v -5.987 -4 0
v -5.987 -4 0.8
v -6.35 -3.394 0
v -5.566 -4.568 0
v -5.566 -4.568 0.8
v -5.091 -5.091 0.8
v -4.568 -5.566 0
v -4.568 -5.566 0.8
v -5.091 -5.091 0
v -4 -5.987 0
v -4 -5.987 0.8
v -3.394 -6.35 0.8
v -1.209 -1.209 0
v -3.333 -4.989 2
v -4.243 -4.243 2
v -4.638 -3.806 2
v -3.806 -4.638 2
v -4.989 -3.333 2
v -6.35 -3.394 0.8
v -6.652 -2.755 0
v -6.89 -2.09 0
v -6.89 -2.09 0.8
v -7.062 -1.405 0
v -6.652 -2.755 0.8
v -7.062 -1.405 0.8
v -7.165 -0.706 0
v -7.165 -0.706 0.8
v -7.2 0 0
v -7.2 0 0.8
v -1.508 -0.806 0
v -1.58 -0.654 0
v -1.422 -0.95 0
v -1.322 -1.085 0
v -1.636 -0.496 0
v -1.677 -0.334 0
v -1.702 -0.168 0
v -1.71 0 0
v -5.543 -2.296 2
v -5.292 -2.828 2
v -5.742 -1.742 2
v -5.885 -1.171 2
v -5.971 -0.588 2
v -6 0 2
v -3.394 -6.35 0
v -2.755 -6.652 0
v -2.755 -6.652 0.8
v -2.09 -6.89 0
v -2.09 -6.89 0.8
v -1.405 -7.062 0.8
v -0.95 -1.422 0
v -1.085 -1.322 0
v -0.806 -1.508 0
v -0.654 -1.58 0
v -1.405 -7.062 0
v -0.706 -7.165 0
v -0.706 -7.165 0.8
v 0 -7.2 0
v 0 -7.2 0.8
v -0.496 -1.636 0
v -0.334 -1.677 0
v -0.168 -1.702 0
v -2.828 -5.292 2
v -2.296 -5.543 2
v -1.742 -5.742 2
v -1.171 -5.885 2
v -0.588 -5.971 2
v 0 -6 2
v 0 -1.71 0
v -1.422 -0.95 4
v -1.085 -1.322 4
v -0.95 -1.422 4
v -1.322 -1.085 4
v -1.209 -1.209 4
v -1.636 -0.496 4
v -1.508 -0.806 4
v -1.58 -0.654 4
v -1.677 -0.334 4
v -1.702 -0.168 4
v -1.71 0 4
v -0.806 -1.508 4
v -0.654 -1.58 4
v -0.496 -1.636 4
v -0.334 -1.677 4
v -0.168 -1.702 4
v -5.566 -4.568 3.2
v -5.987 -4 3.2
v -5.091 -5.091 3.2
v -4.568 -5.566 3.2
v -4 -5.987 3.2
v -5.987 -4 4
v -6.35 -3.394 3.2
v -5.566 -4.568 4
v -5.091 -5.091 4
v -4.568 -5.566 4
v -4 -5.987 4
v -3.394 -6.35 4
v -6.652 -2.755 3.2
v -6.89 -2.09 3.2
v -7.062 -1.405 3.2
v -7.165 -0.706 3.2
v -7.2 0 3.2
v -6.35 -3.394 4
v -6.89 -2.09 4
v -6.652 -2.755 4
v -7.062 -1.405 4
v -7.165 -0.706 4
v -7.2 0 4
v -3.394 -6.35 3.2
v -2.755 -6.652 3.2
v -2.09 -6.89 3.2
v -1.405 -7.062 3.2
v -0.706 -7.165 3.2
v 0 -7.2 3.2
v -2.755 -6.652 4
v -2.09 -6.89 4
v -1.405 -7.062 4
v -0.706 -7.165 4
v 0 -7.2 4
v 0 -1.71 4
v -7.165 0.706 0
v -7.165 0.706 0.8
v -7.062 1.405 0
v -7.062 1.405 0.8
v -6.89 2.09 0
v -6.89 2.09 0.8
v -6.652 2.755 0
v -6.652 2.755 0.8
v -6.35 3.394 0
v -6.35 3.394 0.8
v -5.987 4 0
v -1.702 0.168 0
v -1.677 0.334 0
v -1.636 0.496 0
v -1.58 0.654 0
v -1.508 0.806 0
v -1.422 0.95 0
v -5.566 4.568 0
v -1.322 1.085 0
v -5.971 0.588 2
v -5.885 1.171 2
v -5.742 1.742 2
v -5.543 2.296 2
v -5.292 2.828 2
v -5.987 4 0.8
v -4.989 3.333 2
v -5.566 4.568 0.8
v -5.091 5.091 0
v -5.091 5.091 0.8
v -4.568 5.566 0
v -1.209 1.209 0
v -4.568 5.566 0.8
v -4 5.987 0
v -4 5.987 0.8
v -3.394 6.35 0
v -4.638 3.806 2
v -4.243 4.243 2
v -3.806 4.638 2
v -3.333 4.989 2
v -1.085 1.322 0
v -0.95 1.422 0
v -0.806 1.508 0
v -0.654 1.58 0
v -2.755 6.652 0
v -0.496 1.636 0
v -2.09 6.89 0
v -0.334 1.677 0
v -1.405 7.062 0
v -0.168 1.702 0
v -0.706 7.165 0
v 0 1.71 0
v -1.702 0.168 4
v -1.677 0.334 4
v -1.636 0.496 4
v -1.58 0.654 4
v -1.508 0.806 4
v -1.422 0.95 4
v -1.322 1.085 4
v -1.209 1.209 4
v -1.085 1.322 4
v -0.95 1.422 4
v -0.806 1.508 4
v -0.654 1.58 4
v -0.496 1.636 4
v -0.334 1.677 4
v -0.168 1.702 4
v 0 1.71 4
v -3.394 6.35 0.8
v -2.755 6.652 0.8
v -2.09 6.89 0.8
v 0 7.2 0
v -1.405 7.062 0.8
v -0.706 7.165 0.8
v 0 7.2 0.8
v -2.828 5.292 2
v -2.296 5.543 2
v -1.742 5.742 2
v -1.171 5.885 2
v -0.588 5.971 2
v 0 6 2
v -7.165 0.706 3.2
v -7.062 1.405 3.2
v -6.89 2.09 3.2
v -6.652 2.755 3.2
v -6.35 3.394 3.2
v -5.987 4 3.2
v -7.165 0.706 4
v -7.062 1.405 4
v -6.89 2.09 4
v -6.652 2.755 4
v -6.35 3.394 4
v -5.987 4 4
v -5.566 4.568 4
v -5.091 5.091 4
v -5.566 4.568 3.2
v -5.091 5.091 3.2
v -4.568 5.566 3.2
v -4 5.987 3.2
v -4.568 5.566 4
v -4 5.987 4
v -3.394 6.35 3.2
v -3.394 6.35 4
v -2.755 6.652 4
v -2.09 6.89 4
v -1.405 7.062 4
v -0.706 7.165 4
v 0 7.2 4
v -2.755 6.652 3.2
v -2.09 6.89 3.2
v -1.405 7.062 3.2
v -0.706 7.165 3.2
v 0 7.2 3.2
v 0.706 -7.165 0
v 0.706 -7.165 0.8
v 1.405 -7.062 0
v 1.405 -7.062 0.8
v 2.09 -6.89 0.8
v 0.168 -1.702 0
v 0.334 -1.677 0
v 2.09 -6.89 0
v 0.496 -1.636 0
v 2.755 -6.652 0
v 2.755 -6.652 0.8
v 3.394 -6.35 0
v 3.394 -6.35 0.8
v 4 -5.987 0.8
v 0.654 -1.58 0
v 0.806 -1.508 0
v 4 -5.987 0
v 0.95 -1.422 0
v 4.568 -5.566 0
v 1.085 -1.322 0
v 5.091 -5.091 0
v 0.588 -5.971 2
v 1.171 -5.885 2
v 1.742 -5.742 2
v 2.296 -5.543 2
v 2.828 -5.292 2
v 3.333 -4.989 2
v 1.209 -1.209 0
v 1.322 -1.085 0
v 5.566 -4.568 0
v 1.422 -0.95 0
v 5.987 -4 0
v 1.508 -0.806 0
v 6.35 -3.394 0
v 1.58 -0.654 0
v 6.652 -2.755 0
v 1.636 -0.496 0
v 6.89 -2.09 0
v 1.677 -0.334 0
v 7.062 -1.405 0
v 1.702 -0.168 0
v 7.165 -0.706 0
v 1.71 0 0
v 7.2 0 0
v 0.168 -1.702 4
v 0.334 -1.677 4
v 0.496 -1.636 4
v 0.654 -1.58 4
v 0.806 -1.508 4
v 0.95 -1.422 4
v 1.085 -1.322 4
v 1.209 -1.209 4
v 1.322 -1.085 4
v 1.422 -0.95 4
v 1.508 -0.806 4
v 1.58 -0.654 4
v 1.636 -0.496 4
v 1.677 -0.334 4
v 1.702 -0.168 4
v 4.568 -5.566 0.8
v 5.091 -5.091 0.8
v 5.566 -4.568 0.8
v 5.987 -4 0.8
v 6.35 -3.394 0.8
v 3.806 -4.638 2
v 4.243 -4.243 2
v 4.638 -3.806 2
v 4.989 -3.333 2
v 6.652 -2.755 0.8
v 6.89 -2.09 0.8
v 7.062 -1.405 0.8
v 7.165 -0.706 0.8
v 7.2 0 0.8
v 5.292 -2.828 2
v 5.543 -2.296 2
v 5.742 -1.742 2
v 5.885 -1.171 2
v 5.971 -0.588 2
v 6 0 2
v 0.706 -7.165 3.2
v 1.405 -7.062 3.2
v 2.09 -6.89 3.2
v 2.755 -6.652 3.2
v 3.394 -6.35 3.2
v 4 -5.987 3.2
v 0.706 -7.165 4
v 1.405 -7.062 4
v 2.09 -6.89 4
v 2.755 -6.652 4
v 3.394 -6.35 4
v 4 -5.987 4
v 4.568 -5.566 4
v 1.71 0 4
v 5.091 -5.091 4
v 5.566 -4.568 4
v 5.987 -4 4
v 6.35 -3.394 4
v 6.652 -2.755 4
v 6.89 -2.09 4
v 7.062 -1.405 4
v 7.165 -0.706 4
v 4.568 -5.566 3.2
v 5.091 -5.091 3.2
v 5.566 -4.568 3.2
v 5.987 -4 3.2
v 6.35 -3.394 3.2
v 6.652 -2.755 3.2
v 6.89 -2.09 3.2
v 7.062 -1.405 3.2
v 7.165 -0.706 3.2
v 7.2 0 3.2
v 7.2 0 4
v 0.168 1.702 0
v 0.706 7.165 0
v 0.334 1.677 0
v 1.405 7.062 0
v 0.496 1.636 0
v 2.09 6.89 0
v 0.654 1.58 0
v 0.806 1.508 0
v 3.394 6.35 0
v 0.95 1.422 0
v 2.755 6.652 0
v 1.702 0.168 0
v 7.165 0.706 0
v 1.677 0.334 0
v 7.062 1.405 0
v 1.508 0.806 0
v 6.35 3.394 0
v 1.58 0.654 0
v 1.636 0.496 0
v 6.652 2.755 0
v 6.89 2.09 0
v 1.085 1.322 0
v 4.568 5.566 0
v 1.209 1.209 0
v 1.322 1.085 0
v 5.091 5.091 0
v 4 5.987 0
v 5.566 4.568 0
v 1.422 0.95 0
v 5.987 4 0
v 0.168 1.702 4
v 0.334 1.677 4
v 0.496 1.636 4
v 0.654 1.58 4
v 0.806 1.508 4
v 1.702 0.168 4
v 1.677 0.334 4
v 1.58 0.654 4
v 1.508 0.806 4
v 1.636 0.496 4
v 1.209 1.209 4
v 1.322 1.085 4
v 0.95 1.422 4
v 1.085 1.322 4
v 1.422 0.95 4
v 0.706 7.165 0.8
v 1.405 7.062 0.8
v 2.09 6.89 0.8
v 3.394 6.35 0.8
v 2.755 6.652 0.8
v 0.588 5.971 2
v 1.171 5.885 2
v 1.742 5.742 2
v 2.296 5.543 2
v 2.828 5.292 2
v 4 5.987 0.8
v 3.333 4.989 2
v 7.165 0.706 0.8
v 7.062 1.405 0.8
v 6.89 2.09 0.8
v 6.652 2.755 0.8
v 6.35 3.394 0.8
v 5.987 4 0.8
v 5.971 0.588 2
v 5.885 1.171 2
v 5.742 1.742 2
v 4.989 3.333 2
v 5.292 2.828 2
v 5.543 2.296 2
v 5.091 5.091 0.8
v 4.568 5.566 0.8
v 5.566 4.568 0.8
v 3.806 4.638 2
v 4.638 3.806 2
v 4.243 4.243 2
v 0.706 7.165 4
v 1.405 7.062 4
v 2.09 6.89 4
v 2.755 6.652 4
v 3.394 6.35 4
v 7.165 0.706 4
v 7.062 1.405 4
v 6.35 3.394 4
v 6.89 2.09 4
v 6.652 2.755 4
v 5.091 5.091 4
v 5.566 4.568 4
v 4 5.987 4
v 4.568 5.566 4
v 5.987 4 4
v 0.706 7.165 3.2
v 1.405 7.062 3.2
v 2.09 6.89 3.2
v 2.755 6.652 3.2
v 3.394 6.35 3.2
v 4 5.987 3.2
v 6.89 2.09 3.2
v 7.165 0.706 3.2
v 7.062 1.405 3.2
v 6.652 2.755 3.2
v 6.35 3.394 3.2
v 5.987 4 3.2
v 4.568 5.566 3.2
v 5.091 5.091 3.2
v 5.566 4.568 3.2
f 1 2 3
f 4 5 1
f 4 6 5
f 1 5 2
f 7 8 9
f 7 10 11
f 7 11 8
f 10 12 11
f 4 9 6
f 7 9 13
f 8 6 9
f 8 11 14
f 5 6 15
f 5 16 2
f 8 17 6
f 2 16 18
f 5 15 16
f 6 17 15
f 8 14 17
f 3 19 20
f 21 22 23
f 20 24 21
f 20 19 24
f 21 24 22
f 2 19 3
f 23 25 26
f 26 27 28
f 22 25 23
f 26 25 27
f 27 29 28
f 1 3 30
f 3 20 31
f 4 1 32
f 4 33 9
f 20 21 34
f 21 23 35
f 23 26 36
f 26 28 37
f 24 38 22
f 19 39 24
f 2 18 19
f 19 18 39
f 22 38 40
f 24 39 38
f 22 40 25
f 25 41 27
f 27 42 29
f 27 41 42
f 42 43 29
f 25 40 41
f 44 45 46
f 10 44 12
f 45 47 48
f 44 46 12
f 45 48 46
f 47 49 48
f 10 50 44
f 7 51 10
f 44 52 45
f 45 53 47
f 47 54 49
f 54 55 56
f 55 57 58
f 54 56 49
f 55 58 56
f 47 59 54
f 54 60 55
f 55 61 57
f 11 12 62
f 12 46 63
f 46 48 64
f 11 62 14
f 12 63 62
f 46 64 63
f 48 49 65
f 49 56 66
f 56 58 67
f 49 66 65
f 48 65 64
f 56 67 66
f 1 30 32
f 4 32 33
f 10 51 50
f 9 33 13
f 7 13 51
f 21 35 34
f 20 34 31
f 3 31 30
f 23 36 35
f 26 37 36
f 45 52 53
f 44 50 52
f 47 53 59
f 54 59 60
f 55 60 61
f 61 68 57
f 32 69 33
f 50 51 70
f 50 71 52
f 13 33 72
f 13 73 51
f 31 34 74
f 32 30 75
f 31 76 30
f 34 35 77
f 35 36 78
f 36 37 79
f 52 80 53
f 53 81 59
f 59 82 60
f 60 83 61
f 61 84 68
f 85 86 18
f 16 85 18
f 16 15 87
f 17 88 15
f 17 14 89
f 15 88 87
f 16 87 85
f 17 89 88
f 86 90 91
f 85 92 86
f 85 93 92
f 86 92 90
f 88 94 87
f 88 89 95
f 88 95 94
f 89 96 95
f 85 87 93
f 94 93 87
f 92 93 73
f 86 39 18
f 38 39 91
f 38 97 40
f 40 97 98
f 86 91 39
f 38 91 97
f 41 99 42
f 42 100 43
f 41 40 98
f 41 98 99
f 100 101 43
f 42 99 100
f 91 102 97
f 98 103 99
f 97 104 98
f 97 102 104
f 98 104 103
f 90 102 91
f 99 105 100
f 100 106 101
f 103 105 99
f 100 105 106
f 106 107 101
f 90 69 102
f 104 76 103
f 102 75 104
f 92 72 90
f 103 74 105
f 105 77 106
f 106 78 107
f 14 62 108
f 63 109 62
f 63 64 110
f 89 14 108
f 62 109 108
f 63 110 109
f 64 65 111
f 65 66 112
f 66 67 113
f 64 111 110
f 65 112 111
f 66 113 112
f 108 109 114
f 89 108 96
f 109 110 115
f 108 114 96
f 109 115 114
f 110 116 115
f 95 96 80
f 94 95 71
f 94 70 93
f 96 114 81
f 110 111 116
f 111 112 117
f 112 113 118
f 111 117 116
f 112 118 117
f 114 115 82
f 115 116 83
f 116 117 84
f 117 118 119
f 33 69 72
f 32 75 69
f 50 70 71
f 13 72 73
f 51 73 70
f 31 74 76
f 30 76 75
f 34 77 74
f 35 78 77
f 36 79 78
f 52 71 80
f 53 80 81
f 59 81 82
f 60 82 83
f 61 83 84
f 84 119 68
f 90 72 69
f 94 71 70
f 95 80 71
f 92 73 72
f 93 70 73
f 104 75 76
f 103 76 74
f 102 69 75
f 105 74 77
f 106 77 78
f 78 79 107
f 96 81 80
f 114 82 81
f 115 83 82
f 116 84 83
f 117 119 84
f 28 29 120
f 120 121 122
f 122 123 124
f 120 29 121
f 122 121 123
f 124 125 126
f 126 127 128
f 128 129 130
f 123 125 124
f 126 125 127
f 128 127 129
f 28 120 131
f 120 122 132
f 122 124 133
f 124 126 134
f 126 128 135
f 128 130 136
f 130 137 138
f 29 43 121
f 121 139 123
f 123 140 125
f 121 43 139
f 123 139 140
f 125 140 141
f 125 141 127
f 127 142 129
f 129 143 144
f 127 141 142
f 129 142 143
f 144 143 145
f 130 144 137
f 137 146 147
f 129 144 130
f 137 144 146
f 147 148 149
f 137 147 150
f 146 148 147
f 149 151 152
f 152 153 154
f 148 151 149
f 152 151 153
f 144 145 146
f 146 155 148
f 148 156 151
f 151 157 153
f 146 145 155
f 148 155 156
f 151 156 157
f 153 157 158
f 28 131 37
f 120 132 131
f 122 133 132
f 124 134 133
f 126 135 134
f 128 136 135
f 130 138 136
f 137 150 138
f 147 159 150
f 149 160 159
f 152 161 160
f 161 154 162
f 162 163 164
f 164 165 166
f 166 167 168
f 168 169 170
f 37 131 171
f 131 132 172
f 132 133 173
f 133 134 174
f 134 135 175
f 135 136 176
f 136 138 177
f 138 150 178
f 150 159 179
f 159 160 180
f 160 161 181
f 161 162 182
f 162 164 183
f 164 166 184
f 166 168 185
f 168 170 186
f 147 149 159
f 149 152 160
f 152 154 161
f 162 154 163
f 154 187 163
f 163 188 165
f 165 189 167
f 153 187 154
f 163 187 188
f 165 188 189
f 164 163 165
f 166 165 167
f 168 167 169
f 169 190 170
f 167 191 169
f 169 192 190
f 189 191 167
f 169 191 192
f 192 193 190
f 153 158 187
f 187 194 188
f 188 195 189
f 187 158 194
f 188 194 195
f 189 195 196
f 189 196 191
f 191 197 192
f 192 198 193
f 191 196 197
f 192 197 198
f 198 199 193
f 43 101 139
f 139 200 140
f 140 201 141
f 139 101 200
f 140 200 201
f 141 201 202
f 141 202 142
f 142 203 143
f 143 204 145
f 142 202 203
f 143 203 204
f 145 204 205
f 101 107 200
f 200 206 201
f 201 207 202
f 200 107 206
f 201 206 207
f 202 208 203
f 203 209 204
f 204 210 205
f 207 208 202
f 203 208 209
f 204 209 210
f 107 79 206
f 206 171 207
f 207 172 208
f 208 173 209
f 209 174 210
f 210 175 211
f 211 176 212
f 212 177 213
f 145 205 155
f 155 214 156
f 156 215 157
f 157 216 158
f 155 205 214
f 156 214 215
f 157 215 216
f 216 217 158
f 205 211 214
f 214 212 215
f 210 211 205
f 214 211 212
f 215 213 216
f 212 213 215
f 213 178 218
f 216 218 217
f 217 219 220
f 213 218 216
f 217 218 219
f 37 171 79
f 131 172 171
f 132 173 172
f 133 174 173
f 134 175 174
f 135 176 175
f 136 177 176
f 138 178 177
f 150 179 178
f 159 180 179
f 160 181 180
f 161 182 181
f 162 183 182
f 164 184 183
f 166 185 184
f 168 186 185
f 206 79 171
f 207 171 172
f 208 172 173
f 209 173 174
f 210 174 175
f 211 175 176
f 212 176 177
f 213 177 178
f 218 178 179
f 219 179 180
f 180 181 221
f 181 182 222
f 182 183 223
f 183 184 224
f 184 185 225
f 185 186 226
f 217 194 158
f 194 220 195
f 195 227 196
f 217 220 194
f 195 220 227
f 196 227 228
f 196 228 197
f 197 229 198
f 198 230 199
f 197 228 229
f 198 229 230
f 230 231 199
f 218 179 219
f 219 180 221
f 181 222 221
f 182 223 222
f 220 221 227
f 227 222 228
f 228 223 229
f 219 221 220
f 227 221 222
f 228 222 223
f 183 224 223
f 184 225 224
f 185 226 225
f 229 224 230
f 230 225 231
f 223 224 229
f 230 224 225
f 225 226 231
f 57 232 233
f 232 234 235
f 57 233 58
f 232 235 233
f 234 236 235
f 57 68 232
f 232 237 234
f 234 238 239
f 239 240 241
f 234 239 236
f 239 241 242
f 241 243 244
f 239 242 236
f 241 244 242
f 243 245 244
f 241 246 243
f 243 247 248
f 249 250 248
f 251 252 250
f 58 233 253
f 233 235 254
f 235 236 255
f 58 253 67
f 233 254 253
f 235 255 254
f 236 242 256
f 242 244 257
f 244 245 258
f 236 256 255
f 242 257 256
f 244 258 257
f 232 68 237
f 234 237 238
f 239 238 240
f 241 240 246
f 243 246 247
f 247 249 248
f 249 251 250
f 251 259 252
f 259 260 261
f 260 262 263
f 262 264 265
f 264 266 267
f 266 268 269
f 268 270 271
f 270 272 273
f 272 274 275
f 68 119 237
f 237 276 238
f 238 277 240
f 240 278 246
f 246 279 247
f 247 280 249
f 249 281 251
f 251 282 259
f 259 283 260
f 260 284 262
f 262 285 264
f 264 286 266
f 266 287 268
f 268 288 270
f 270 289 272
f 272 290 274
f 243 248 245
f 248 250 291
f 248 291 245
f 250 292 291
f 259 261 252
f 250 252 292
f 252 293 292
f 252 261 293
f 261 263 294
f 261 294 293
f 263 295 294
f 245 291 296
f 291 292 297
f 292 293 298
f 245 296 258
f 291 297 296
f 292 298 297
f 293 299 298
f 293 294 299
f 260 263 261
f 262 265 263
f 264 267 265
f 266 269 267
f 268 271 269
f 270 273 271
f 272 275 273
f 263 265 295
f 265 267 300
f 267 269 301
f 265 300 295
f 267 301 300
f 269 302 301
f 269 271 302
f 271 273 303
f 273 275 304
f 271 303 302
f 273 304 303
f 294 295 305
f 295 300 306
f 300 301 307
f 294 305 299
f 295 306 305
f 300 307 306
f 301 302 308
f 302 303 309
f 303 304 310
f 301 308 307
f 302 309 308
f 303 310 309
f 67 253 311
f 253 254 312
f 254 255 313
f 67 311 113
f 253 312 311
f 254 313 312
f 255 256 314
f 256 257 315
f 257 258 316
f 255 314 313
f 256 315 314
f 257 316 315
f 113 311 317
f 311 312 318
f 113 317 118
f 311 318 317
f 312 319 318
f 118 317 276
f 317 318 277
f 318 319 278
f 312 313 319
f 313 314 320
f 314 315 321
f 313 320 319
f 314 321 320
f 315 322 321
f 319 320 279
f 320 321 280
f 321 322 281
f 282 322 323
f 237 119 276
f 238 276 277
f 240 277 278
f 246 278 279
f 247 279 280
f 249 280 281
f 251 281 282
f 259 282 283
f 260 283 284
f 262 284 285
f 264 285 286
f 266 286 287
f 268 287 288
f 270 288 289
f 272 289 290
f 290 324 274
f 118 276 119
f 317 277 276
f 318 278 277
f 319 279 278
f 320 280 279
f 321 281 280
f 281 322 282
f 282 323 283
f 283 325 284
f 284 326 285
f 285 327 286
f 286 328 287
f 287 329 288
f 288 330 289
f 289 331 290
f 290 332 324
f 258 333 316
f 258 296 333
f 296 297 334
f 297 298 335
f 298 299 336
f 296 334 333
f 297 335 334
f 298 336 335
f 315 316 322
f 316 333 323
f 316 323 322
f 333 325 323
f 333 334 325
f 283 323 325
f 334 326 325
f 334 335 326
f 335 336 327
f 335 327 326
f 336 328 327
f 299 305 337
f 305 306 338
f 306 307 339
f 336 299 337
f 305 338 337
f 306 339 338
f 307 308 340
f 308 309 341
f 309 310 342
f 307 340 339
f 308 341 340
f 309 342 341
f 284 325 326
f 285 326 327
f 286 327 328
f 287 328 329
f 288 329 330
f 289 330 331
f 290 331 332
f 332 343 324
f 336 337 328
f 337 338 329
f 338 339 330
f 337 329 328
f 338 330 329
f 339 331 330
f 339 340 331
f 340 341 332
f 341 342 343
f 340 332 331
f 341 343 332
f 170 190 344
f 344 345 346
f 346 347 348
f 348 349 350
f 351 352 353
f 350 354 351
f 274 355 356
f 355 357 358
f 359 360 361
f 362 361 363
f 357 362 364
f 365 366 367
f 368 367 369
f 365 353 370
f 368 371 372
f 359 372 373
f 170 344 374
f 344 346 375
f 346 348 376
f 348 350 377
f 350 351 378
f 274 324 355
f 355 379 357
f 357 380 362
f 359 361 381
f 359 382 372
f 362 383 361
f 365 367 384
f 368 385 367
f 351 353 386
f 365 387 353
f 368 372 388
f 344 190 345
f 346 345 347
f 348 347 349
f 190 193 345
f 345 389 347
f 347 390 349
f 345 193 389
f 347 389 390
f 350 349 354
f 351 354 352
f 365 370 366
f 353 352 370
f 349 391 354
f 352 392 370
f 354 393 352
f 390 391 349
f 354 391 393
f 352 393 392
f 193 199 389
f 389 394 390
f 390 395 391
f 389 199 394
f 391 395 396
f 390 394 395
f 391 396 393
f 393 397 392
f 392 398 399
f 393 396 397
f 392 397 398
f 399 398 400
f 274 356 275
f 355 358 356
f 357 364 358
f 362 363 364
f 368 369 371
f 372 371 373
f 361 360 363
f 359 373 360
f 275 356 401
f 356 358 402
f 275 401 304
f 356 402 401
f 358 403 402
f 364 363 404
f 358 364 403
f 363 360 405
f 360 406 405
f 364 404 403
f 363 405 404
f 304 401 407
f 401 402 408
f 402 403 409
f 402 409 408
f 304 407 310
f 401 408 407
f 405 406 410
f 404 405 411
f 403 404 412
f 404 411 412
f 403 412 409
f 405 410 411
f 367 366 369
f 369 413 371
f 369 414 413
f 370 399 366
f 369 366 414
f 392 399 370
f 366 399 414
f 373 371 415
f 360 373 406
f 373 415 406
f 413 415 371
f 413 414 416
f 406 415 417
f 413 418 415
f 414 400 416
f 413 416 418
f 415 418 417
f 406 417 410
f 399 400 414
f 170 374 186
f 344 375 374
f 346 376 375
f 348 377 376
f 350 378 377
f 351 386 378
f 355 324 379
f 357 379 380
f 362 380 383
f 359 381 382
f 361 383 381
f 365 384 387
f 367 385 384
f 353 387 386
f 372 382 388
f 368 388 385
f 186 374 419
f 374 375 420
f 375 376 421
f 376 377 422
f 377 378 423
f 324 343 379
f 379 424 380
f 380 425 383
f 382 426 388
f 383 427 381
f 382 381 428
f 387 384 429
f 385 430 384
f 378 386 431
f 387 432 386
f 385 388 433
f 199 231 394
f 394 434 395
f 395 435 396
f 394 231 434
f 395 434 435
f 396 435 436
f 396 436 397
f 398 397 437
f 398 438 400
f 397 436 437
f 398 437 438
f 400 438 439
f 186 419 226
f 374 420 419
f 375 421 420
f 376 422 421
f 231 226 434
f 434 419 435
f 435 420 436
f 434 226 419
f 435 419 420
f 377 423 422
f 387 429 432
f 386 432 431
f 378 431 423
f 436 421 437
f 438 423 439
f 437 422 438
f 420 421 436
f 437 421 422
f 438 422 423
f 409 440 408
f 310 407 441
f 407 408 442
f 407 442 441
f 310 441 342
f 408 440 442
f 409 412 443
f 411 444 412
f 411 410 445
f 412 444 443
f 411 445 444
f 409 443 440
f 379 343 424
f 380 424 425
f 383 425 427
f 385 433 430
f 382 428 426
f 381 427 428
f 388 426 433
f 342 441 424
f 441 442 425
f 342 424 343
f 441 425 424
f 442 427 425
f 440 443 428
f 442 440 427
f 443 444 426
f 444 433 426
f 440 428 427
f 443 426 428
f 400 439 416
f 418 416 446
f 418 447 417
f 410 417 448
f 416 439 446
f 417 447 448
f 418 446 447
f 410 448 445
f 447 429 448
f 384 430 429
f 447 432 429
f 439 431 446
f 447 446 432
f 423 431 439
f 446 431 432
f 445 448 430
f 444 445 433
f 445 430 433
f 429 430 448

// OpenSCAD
// file: lib/lib.scad
// Shared helpers. Include AFTER params.scad (needs TOL, M3_* etc.).
$fa = 4; $fs = 0.5;

module rrect(size, r) {            // 2D rounded rectangle, centred
    r2 = min(r, min(size[0], size[1]) / 2 - 0.001);
    offset(r = r2) square([size[0] - 2 * r2, size[1] - 2 * r2], center = true);
}
module rbox(size, r, center_xy = true) {   // box with rounded vertical edges
    translate(center_xy ? [0, 0, 0] : [size[0] / 2, size[1] / 2, 0])
        linear_extrude(size[2]) rrect([size[0], size[1]], r);
}
module rbox_at(x0, x1, y0, y1, z0, z1, r = 0.01) {
    translate([(x0 + x1) / 2, (y0 + y1) / 2, z0]) rbox([x1 - x0, y1 - y0, z1 - z0], r);
}
module box_at(x0, x1, y0, y1, z0, z1) { translate([x0, y0, z0]) cube([x1 - x0, y1 - y0, z1 - z0]); }

module ring(ro, ri, h) { difference() { cylinder(r = ro, h = h); translate([0, 0, -1]) cylinder(r = ri, h = h + 2); } }
module ring_sector(ro, ri, h, a0, a1) {
    intersection() {
        ring(ro, ri, h);
        linear_extrude(h) polygon(concat([[0, 0]], [for (a = [a0 : (a1 - a0) / 24 : a1]) 2 * ro * [cos(a), sin(a)]]));
    }
}
// teardrop hole along an axis lying horizontal (axis = Y after rotation), printable w/o support
module teardrop2d(d) { union() { circle(d = d); rotate(45) square(d / 2); } }
// vertical heat-set insert hole, opening at z=0 going +z (depth l)
module insert_hole(l = M3_INSERT_L) { translate([0, 0, -EPS]) cylinder(d = M3_INSERT_D, h = l + EPS); }
module m3_clear(l) { translate([0, 0, -EPS]) cylinder(d = M3_CLEAR, h = l + 2 * EPS); }
module m3_csk(l) {  // countersunk clearance from z=0 upward, head at z=0 side
    translate([0, 0, -EPS]) { cylinder(d = M3_CLEAR, h = l + 2 * EPS); cylinder(d1 = 6.4, d2 = M3_CLEAR, h = 1.7); }
}
module card2d() { rrect([CARD_L, CARD_W], CARD_R); }
module card_at(cy, z) { translate([0, cy, z]) linear_extrude(CARD_T) card2d(); }

// ---- gears ----
function _inv(a) = tan(a) - a * PI_ / 180;           // involute function, a in deg
function _invpt(rb, r, ang0, s) = let(al = acos(rb / r), th = ang0 - s * (_inv(al) * 180 / PI_)) [r * cos(th), r * sin(th)];
module involute_gear2d(m, z, pa = 20, clearance = 0.05) {
    rp = m * z / 2; rb = rp * cos(pa); ra = rp + m - clearance; rf = rp - 1.25 * m;
    half = 90 / z + _inv(pa) * 180 / PI_;            // tooth half-angle at base (deg)
    n = 8;
    rs = [for (i = [0 : n]) max(rb, rf) + (ra - max(rb, rf)) * i / n];
    union() {
        circle(r = rf, $fn = z * 4);
        for (k = [0 : z - 1]) rotate(k * 360 / z) polygon(concat(
            [[rf * cos(-half), rf * sin(-half)]],
            [for (r = rs) let(p = _invpt(rb, r, half, 1)) [p[0], -p[1]]],
            [for (i = [n : -1 : 0]) _invpt(rb, rs[i], half, 1)],
            [[rf * cos(half), rf * sin(half)]]));
    }
}
// straight gear rack (2D in XY: teeth along +x, pointing -y, pitch line at y=0)
module gear_rack2d(m, len, back = 3) {
    p = PI_ * m; ad = m; de = 1.25 * m; t = tan(20);
    n = ceil(len / p) + 1;
    intersection() {
        union() {
            translate([0, de]) square([len, back]);
            for (i = [0 : n]) if (i * p - p / 4 - (p / 4 + de * t) >= 0 && i * p + de * t <= len) translate([i * p - p / 4, 0]) polygon([
                [-(p / 4 + de * t), de + 0.01], [p / 4 + de * t + 0.01, de + 0.01],
                [p / 4 - ad * t, -ad], [-(p / 4 - ad * t), -ad] ]);
        }
        translate([0, -ad - 1]) square([len, ad + de + back + 2]);
    }
}
// GT2 belt-tooth profile ring (teeth outward), 2D
module gt2_ring2d(n, r_land, ri) {
    union() {
        difference() { circle(r = r_land + 0.01, $fn = n * 2); circle(r = ri, $fn = n * 2); }
        for (k = [0 : n - 1]) rotate(k * 360 / n)
            translate([r_land, 0]) hull() { translate([-0.2, 0]) square([0.2, 1.0], center = true); translate([0.25, 0]) circle(r = 0.5, $fn = 12); }
    }
}
// main file
// O-ring belt pulley on the feed shaft (-X end): groove Ø12 for a 1.5 mm cord. M3 grub.
// Print: flat, no supports (V groove 45 deg).
include <params.scad>
include <lib/lib.scad>
module pulley(dg, x0, y, z) translate([x0, y, z]) rotate([0, 90, 0]) difference() {
    rotate_extrude($fn = 64) polygon([[fit_free(SHAFT_D) / 2 + 0.01, 0], [dg / 2 + 1.2, 0], [dg / 2 + 1.2, 0.8], [dg / 2, 2.0], [dg / 2 + 1.2, 3.2], [dg / 2 + 1.2, 4], [fit_free(SHAFT_D) / 2 + 0.01, 4]]);   // 45 deg V groove
    translate([0, 0, -1]) cylinder(d = fit_press(SHAFT_D), h = 6);
}
module loader_pulley_feed() pulley(PUL_FEED_D, BELT_X - 2, FEED_Y, FEED_Z);
module loader_pulley_feed_print() translate([0, 0, 0]) rotate([0, -90, 0]) translate([-(BELT_X - 2), -FEED_Y, -FEED_Z]) loader_pulley_feed();
loader_pulley_feed_print();
